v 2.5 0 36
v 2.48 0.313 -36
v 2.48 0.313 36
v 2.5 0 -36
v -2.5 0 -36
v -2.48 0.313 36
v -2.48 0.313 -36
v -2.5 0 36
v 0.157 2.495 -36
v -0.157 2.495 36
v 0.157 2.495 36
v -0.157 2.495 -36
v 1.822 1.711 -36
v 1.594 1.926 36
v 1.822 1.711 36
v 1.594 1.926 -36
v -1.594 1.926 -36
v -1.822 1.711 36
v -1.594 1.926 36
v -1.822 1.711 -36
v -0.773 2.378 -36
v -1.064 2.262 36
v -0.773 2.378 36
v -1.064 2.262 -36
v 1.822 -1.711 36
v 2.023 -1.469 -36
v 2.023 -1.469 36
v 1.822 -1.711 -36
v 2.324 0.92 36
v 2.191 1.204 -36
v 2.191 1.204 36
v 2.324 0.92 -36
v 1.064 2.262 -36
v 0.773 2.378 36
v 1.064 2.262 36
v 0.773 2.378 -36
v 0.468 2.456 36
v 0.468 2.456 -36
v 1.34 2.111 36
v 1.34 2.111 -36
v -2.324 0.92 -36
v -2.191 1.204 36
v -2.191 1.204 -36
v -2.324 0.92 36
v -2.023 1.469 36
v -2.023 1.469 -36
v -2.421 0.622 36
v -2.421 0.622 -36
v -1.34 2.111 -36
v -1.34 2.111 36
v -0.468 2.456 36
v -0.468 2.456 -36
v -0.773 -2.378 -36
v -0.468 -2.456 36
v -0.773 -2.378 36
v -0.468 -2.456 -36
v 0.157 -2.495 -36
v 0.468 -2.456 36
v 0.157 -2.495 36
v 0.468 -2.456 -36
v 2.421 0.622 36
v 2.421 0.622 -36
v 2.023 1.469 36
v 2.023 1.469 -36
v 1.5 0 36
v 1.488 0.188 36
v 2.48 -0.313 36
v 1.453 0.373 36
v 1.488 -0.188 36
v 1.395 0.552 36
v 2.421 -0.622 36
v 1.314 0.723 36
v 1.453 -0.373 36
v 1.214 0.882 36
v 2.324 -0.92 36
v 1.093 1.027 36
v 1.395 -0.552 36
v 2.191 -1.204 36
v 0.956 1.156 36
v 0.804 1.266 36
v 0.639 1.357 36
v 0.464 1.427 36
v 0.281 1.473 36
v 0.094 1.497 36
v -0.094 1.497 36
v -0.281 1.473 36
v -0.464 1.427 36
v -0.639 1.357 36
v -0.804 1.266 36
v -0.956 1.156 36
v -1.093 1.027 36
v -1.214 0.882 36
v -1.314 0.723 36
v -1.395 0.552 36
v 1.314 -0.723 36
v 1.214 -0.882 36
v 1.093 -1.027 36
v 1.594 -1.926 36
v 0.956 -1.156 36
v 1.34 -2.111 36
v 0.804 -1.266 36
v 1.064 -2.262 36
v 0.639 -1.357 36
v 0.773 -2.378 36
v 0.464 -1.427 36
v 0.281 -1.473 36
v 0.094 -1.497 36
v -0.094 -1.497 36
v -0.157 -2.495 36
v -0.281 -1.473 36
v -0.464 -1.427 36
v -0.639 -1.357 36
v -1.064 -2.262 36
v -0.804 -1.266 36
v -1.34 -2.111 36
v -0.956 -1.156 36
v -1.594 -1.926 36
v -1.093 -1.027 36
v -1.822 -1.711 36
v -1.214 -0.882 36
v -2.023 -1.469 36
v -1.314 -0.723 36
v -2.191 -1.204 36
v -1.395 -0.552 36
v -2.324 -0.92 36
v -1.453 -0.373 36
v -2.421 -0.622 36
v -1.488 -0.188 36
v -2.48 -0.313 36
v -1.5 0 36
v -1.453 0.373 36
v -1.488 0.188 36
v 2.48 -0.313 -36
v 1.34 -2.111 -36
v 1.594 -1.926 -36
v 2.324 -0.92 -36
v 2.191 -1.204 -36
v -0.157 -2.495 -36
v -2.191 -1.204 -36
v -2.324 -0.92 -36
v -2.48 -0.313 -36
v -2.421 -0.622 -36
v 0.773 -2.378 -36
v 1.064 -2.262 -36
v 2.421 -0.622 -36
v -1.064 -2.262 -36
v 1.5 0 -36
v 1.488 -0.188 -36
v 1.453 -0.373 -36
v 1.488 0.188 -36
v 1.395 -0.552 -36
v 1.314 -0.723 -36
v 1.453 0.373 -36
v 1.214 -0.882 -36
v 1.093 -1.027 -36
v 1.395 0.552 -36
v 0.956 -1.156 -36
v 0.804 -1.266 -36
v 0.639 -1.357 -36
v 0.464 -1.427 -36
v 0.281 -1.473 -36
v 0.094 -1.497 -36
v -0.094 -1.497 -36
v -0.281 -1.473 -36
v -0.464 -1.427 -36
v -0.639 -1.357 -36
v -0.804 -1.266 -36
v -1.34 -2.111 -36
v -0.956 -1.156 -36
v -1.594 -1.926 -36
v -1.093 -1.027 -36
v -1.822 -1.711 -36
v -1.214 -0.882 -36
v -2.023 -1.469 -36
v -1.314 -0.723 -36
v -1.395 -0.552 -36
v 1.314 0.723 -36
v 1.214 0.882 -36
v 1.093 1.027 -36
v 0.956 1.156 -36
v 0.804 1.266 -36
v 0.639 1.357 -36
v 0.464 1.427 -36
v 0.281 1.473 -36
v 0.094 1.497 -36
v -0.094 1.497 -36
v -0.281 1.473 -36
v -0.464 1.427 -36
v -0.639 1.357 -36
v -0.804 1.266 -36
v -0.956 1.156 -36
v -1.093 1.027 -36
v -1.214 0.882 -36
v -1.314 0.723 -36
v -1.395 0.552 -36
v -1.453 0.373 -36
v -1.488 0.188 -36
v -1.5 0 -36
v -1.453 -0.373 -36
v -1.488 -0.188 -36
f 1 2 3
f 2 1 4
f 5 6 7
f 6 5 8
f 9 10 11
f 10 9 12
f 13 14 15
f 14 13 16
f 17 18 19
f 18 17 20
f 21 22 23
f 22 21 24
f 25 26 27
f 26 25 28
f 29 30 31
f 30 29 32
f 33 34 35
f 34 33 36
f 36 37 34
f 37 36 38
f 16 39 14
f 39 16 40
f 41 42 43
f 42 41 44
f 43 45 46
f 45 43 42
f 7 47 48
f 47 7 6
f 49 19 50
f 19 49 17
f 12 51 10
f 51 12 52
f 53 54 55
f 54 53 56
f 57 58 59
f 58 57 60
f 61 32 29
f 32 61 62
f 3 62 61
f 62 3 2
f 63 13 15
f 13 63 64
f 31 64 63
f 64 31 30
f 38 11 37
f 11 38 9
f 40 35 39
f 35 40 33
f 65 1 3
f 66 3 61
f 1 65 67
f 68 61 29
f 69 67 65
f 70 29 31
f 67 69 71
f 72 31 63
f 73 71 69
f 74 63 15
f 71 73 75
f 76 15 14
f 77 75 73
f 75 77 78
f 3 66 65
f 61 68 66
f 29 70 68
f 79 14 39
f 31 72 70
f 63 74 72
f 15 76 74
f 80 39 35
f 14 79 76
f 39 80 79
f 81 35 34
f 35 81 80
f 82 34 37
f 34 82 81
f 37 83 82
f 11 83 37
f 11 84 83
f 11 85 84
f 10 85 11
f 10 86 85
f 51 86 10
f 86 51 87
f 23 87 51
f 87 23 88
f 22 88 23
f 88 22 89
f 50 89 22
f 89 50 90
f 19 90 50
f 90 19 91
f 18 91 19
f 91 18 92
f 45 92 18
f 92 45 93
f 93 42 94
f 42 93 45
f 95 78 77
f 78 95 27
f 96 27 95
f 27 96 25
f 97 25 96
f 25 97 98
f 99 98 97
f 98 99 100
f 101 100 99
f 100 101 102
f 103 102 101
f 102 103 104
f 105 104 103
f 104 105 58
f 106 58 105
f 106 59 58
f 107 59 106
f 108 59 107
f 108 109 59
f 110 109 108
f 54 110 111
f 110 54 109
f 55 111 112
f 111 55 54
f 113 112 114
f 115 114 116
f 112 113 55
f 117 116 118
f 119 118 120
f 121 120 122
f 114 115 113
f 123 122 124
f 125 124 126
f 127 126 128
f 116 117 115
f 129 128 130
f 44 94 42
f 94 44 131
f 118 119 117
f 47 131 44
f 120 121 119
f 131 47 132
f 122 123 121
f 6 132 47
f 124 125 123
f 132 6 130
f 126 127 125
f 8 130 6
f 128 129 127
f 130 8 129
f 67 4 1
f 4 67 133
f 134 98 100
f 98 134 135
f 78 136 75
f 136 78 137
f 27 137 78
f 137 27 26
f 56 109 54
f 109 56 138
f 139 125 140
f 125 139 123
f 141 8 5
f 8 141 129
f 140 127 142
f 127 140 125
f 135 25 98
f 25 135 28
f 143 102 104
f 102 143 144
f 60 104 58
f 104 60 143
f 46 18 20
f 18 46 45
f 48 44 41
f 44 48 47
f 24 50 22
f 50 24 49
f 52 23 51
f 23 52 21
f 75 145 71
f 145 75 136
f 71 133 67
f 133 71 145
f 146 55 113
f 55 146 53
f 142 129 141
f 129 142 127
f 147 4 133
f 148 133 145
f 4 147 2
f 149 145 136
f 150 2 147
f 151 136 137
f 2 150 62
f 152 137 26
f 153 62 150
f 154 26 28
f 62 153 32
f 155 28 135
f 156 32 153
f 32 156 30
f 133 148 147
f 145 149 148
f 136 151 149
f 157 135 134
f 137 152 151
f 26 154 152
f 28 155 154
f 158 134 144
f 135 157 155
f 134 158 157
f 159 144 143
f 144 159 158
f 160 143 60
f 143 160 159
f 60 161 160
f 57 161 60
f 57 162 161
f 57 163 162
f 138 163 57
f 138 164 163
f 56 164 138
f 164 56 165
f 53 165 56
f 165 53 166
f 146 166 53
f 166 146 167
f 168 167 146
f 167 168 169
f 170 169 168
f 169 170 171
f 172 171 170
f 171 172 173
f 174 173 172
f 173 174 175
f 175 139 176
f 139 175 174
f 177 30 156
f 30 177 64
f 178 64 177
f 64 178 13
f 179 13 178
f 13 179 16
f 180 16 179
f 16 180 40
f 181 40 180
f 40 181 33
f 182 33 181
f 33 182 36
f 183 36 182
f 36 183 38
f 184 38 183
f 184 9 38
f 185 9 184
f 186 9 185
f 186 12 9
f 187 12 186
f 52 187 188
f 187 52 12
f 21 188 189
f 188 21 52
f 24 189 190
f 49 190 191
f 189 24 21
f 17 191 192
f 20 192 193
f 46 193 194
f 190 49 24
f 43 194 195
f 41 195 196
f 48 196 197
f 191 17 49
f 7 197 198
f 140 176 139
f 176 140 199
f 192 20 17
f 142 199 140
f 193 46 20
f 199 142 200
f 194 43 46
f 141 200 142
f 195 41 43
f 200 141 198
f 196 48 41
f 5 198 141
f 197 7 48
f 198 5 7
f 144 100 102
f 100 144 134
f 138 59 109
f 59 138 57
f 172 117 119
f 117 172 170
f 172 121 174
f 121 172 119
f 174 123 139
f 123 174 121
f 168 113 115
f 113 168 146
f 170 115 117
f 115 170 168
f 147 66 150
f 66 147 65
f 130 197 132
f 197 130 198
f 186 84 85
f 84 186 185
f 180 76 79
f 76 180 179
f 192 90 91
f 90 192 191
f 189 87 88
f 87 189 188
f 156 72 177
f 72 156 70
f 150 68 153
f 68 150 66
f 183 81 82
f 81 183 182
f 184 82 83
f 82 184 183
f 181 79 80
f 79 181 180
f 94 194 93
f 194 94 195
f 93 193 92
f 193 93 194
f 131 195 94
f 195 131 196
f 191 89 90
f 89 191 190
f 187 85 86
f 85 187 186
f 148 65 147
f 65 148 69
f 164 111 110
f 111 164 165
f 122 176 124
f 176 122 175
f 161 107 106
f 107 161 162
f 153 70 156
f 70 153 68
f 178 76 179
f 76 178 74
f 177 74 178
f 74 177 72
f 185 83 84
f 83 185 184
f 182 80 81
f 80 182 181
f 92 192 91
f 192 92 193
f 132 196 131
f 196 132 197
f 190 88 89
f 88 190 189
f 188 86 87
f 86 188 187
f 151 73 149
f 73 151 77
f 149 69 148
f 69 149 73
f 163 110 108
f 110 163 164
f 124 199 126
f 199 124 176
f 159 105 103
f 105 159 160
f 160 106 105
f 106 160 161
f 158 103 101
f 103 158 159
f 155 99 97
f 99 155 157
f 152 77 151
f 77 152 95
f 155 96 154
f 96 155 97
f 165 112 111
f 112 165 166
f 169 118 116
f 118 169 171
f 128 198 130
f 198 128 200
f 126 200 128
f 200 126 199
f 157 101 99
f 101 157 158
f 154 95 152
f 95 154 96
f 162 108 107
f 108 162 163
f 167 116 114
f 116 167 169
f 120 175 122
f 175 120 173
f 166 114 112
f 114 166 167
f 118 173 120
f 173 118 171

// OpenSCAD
$fn = 50;


difference() {
	union() {
		translate(v = [0, 0, -36.0000000000]) {
			cylinder(h = 72, r = 2.5000000000);
		}
	}
	union() {
		translate(v = [0, 0, -100.0000000000]) {
			cylinder(h = 200, r = 1.5000000000);
		}
	}
}
